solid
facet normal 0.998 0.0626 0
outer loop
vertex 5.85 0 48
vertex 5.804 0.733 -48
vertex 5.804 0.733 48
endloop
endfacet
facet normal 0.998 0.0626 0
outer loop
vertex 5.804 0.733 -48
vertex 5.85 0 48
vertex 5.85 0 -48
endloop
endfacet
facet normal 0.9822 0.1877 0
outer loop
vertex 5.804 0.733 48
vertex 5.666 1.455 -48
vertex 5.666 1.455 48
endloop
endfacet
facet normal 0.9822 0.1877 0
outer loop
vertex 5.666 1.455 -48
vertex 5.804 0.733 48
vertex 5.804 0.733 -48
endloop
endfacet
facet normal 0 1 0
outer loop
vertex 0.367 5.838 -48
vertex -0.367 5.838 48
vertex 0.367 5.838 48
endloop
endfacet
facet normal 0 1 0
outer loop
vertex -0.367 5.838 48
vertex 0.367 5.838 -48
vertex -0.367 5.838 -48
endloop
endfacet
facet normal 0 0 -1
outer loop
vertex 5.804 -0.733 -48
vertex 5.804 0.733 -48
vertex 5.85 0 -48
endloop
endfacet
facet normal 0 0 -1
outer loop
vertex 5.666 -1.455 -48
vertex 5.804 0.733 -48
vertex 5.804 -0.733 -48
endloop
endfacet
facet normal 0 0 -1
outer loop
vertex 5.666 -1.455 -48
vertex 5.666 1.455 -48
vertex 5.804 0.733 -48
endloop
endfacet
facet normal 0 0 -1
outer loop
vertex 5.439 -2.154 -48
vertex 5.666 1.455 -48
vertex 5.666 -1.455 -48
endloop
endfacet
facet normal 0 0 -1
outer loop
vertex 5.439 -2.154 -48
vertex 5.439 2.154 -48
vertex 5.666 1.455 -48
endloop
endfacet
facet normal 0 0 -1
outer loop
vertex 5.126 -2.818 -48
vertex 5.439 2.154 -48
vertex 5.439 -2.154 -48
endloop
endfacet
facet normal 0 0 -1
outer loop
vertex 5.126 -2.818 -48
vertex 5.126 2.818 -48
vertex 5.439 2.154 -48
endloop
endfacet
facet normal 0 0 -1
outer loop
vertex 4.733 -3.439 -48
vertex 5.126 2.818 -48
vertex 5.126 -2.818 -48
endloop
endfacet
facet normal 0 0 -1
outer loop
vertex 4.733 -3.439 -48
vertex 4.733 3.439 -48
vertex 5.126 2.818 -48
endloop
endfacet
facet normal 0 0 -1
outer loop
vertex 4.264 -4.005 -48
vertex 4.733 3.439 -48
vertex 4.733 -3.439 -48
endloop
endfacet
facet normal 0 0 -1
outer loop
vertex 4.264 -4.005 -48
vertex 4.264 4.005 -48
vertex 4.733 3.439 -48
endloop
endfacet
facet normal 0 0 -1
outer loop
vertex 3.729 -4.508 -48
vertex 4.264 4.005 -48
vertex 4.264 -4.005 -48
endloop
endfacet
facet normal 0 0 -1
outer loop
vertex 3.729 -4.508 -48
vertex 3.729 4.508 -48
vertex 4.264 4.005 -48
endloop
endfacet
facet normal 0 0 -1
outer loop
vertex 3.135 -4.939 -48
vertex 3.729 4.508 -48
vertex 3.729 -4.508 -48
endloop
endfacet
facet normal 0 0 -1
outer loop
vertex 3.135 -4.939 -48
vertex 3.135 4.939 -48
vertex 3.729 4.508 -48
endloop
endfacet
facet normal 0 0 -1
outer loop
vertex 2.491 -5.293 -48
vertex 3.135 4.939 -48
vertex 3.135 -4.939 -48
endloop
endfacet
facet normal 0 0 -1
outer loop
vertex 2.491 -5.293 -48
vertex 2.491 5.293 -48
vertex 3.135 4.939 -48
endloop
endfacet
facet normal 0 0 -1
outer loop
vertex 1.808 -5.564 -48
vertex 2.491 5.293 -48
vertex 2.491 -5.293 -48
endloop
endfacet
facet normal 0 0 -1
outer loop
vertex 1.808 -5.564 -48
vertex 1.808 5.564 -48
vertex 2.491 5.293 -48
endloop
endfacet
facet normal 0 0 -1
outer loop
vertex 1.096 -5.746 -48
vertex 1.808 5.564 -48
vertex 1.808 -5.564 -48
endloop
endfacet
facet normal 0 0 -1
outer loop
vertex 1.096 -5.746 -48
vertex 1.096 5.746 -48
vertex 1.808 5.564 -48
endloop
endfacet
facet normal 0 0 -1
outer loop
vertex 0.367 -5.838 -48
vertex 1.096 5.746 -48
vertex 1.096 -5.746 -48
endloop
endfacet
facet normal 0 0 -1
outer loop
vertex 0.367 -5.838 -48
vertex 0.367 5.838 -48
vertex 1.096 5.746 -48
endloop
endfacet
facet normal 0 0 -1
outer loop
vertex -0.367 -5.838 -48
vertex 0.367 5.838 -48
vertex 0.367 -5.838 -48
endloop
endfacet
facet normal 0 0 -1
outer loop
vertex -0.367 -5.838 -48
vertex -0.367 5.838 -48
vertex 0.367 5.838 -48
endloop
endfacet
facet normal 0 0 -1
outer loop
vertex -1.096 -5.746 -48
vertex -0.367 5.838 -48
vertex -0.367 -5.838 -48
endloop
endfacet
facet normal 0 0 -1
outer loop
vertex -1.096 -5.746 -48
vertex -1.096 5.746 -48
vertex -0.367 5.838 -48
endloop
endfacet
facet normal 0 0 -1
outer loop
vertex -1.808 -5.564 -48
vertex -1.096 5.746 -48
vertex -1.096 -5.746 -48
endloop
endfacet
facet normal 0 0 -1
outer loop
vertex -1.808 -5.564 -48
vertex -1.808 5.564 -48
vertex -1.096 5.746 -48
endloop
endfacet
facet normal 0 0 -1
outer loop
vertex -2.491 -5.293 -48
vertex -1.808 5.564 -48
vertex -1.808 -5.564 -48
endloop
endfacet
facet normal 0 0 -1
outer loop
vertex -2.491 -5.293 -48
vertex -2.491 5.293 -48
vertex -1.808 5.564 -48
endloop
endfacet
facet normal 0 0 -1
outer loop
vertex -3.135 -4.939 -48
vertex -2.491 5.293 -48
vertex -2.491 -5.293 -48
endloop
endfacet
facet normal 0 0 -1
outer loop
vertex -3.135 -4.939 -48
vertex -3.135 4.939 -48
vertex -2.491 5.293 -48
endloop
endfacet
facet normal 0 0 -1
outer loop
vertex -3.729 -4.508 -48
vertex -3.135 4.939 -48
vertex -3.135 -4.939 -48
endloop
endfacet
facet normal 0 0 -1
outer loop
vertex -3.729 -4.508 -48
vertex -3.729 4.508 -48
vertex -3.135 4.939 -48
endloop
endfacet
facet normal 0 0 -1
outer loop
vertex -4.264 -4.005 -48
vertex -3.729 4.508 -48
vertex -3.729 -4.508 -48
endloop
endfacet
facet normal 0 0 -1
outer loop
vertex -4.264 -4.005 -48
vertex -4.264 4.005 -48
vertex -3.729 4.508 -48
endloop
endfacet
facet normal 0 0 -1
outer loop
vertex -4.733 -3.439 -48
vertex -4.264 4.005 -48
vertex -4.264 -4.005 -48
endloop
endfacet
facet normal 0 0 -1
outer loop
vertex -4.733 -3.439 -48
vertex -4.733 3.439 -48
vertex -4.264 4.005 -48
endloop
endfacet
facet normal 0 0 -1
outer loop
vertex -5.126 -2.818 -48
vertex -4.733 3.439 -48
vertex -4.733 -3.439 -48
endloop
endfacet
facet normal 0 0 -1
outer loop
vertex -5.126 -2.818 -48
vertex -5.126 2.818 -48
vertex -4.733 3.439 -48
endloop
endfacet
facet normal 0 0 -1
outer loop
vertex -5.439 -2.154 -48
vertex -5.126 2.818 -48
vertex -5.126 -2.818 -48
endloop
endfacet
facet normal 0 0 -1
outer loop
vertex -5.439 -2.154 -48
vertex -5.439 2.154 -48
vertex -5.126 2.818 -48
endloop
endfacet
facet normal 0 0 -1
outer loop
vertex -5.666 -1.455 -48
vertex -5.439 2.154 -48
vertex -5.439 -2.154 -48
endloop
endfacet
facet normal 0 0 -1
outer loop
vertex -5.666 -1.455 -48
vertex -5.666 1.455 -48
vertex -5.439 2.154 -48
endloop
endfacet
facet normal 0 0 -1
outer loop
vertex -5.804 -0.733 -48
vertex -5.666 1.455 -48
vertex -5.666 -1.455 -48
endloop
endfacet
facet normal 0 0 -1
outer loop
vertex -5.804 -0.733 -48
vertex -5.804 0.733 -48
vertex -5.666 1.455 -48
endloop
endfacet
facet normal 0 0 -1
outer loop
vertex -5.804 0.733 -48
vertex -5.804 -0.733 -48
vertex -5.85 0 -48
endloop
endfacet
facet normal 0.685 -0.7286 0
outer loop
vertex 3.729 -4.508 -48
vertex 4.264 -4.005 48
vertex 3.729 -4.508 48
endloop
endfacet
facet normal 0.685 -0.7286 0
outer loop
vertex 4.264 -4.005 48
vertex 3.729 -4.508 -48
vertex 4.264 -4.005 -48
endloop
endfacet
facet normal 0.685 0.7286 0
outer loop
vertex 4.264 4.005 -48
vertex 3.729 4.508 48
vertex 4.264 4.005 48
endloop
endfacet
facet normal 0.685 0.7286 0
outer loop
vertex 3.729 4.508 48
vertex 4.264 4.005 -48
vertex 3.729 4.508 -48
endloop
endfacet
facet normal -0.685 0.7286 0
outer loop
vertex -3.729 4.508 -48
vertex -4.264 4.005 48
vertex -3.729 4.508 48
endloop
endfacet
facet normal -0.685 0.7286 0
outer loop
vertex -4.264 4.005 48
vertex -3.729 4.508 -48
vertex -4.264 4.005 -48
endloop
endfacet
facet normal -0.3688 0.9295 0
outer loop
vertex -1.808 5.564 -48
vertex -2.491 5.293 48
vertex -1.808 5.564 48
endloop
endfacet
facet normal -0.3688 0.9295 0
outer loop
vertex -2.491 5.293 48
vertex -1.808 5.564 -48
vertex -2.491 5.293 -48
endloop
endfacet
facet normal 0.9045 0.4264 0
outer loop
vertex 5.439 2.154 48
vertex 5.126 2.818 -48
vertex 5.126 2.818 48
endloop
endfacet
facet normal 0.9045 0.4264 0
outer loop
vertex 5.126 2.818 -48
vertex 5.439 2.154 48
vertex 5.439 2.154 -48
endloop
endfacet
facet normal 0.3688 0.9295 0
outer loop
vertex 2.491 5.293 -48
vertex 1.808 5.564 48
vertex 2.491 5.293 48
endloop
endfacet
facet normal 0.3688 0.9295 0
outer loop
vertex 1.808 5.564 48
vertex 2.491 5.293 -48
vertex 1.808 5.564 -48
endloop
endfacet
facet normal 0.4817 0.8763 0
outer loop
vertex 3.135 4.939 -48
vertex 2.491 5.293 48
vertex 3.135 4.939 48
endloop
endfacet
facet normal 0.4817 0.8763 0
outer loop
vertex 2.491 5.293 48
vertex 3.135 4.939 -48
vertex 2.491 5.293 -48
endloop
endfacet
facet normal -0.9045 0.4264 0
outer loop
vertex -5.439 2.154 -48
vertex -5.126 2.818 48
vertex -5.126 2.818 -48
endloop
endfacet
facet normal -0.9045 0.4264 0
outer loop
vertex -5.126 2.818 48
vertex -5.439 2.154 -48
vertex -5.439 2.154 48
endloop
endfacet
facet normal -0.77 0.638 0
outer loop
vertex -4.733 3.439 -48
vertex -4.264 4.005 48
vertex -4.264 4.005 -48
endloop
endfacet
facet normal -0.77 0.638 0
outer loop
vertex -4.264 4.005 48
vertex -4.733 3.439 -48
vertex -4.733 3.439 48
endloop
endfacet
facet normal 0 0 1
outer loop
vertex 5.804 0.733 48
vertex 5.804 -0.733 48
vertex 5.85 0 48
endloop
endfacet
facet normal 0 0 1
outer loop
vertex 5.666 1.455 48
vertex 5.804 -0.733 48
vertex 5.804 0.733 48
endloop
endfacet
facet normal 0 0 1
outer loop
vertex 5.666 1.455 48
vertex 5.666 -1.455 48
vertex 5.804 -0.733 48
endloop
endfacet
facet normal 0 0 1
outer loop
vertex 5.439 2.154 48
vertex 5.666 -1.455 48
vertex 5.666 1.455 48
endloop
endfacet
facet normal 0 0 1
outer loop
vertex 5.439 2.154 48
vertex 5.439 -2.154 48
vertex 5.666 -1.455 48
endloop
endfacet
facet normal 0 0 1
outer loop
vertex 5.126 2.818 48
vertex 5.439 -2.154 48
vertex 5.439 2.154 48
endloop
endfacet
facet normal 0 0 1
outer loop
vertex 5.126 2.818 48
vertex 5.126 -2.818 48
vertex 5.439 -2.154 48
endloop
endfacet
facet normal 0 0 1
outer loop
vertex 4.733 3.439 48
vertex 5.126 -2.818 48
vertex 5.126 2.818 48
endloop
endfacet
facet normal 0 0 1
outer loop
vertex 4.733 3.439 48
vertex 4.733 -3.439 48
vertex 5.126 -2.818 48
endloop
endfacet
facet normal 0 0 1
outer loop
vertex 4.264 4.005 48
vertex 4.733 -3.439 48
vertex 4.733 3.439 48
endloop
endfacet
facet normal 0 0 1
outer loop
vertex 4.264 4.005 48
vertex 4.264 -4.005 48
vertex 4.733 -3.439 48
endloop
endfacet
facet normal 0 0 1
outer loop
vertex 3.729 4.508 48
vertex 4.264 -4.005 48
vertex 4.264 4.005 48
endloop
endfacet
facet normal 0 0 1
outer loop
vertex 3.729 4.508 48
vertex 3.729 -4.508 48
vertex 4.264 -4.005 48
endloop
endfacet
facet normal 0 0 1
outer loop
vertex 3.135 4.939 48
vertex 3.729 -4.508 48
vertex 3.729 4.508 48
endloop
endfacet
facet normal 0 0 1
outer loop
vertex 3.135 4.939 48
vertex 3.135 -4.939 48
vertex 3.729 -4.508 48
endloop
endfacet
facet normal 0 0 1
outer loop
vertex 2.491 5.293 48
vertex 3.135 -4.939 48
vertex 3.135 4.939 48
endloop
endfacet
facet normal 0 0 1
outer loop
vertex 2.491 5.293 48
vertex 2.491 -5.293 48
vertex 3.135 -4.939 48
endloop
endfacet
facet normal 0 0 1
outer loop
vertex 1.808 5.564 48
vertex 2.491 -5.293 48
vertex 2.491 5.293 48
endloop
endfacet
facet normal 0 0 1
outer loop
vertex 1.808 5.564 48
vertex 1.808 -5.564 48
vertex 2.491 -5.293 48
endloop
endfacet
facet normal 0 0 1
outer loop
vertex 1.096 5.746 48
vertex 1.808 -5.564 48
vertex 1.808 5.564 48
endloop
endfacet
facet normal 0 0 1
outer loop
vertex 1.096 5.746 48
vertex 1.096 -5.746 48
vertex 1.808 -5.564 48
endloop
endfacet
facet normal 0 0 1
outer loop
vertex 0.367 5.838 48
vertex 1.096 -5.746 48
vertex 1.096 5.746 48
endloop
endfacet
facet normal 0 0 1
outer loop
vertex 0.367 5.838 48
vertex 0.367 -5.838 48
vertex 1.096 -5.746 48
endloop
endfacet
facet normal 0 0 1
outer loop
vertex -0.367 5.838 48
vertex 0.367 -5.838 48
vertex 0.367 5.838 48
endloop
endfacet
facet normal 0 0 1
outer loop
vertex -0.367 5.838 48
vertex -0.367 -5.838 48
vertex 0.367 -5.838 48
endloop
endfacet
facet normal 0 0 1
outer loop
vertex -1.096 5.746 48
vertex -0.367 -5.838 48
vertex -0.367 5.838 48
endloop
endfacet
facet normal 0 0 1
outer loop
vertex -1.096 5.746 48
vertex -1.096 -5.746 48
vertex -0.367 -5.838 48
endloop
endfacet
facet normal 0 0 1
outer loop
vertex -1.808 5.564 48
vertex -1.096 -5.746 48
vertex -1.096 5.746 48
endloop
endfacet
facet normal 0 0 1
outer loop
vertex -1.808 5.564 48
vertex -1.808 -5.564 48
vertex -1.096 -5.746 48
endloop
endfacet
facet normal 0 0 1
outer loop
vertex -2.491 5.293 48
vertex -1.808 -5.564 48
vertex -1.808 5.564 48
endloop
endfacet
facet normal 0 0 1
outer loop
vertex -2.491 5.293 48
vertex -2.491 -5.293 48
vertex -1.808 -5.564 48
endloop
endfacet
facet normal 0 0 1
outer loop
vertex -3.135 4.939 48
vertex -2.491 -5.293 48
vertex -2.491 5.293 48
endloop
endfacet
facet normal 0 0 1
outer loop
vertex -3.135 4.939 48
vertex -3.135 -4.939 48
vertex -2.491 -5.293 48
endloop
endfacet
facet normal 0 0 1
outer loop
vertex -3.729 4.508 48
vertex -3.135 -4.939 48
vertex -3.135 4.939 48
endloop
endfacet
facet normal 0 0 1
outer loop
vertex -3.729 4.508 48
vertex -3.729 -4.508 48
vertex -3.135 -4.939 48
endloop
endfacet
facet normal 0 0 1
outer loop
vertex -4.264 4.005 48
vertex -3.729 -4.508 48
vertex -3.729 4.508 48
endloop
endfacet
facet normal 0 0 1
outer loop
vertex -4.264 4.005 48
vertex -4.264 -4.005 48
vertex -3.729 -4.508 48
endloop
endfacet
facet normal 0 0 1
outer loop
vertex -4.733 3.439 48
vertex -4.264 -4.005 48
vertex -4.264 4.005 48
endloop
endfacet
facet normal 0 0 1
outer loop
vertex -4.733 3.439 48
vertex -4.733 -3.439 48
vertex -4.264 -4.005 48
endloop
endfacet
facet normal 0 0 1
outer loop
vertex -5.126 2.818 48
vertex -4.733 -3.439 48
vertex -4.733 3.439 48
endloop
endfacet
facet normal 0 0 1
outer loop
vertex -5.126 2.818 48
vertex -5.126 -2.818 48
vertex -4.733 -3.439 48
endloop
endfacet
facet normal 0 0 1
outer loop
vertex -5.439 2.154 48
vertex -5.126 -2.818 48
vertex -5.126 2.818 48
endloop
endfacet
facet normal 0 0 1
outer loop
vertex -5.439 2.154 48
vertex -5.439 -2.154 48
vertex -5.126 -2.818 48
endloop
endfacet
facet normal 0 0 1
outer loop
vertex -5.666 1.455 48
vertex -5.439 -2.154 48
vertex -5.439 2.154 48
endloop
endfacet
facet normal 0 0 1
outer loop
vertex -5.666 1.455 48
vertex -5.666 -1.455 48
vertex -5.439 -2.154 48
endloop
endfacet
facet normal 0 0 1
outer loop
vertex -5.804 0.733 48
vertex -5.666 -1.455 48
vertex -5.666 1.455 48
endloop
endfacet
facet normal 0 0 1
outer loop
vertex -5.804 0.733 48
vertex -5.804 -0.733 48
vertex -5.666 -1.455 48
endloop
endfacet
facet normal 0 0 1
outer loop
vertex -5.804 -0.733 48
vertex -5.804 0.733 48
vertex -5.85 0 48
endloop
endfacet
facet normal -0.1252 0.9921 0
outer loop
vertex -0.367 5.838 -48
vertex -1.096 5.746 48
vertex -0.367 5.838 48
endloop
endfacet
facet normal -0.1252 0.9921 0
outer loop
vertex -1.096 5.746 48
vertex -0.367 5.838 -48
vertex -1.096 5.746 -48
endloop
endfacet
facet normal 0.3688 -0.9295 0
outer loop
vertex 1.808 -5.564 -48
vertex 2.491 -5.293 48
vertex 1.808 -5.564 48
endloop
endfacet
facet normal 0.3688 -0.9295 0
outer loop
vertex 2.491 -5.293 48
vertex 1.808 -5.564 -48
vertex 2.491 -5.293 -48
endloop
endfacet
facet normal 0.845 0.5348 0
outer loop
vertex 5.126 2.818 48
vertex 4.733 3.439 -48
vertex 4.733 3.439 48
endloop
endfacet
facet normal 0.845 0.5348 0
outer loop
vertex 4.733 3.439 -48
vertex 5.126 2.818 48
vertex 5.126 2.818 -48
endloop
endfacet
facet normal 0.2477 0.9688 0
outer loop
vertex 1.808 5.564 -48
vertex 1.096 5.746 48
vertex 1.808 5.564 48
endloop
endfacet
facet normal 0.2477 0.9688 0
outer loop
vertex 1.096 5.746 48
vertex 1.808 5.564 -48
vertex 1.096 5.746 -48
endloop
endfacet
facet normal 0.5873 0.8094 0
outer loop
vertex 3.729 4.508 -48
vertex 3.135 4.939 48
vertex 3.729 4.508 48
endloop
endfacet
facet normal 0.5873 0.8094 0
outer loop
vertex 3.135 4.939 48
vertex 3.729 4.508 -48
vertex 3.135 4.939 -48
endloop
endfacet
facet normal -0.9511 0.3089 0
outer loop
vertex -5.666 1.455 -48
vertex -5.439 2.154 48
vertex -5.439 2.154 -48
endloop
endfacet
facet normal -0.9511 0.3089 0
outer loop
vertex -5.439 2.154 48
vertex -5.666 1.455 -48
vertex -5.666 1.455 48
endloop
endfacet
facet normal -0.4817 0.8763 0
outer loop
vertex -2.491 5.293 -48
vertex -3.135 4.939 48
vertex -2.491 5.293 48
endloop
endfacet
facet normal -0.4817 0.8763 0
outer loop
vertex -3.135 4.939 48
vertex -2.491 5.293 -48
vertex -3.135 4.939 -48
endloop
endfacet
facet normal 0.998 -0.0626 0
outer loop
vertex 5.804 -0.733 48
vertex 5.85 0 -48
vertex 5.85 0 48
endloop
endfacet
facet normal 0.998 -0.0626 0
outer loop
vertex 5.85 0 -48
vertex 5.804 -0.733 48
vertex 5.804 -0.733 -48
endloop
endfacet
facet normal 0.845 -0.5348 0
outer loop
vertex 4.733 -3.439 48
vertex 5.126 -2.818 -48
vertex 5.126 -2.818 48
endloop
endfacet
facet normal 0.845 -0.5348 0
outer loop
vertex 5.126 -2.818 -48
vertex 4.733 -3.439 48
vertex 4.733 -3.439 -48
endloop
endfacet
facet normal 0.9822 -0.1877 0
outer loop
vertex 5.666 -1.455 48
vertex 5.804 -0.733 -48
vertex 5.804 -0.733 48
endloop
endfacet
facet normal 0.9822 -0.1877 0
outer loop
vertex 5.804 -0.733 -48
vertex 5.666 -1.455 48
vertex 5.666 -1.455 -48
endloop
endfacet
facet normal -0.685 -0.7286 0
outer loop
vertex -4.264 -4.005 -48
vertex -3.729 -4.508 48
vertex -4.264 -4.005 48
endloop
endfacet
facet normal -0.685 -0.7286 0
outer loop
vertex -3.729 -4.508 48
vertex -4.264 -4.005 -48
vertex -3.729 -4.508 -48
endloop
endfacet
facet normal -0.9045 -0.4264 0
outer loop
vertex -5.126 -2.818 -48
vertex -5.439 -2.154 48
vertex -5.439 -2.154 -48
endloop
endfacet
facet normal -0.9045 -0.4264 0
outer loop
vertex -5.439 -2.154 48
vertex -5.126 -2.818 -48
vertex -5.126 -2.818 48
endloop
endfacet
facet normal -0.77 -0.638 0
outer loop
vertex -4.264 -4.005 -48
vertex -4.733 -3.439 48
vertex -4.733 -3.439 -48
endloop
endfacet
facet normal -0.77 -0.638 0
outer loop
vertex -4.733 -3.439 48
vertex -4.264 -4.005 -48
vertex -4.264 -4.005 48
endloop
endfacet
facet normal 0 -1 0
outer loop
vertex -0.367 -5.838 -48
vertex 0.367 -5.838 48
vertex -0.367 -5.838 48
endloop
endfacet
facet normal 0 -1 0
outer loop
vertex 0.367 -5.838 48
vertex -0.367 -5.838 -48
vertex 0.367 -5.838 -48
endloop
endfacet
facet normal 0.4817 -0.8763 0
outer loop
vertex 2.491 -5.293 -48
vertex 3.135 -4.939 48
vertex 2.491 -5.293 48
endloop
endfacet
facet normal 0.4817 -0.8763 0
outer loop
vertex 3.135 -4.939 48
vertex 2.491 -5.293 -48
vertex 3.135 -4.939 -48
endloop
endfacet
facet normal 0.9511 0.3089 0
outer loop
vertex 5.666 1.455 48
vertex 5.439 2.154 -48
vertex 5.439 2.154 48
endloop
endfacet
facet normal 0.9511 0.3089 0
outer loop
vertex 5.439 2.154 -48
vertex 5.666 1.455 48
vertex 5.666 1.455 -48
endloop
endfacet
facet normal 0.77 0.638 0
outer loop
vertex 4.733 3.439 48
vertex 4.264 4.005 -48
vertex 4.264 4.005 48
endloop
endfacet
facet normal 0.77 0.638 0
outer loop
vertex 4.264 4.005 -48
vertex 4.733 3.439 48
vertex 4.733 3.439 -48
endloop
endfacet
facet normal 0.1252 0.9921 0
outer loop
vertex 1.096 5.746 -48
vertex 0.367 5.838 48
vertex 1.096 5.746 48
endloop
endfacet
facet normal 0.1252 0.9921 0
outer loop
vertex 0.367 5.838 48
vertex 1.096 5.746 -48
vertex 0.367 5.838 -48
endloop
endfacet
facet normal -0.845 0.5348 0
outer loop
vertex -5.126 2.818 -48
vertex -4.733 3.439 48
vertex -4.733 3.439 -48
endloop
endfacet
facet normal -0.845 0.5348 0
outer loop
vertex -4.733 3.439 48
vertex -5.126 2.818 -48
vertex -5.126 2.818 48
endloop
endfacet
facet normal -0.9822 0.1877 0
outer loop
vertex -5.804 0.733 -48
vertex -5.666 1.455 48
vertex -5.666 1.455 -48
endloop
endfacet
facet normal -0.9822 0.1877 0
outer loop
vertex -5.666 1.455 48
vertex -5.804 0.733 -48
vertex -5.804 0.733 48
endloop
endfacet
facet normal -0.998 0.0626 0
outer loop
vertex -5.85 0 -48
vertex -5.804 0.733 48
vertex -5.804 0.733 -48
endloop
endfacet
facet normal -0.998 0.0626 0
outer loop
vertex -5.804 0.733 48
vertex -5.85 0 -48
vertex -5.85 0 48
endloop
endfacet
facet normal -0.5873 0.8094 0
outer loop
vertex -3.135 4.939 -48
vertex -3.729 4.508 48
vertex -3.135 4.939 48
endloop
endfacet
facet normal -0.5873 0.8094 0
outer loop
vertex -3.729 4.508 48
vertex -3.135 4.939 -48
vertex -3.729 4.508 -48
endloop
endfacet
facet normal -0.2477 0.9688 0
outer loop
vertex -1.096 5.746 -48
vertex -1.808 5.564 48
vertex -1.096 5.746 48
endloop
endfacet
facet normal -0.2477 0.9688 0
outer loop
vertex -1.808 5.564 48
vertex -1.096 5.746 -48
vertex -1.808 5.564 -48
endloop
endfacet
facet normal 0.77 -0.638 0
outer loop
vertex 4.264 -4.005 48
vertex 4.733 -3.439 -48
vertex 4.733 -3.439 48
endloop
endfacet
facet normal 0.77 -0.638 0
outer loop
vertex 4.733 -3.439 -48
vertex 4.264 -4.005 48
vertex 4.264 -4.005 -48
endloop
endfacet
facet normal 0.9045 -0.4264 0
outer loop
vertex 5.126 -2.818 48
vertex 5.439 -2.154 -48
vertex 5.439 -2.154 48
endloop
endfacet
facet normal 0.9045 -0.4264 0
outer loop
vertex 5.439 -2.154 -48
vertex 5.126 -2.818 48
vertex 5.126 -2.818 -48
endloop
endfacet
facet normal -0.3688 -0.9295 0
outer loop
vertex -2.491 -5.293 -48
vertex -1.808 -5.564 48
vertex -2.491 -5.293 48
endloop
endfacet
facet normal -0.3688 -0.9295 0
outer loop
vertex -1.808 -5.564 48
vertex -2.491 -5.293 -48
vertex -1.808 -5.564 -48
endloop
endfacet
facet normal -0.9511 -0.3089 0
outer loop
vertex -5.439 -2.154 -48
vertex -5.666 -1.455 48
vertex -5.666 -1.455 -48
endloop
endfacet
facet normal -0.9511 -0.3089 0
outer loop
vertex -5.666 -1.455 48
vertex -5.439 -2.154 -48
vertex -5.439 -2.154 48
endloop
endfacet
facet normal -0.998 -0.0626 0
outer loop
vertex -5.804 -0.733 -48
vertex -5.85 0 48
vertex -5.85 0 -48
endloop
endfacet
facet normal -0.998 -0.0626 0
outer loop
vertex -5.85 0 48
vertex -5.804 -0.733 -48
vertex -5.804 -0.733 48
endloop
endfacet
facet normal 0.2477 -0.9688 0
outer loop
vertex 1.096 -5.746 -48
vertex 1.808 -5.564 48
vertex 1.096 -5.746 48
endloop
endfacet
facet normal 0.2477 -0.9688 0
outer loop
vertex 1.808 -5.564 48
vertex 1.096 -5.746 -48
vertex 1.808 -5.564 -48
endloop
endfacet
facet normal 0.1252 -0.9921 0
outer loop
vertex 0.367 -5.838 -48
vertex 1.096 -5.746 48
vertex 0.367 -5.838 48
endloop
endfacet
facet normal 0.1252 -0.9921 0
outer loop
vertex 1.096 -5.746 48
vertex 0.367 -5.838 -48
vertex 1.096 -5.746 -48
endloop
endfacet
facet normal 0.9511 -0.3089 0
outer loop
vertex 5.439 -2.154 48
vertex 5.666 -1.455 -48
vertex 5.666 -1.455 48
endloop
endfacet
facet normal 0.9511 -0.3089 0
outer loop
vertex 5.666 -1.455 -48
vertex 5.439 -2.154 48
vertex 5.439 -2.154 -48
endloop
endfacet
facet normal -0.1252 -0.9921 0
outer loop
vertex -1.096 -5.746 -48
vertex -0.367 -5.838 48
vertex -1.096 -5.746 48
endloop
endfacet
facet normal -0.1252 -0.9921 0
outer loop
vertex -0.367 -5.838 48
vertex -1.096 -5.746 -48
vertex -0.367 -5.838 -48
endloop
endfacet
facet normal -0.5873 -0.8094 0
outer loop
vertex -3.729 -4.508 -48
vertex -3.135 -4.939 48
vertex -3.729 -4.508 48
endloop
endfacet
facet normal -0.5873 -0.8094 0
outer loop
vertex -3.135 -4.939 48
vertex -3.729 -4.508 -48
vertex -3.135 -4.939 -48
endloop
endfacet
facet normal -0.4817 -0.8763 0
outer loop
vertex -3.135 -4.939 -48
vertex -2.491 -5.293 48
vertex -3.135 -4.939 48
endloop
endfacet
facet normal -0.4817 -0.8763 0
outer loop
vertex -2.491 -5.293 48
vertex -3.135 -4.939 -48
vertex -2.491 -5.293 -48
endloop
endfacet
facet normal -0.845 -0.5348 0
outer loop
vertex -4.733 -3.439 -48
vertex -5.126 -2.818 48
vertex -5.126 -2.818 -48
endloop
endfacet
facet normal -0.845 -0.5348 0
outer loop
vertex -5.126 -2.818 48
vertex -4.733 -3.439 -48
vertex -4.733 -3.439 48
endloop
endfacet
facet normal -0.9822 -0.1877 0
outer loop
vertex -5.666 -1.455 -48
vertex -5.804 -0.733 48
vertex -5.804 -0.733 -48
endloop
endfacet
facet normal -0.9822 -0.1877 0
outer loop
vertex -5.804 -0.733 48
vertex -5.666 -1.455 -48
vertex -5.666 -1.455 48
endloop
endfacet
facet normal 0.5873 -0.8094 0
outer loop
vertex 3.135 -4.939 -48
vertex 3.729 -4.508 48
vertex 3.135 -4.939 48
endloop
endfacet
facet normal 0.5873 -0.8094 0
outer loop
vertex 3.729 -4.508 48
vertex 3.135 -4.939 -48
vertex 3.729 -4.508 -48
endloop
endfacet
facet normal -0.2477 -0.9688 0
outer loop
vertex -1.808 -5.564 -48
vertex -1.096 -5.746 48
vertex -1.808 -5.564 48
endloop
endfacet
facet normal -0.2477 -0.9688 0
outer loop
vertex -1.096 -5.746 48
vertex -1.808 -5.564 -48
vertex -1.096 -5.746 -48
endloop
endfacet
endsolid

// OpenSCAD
$fn = 50;


difference() {
	union() {
		translate(v = [0, 0, -48.0000000000]) {
			cylinder(h = 96, r = 5.8500000000);
		}
	}
	union() {
		translate(v = [0, 0, -100.0000000000]) {
			cylinder(h = 200, r = 0);
		}
	}
}
